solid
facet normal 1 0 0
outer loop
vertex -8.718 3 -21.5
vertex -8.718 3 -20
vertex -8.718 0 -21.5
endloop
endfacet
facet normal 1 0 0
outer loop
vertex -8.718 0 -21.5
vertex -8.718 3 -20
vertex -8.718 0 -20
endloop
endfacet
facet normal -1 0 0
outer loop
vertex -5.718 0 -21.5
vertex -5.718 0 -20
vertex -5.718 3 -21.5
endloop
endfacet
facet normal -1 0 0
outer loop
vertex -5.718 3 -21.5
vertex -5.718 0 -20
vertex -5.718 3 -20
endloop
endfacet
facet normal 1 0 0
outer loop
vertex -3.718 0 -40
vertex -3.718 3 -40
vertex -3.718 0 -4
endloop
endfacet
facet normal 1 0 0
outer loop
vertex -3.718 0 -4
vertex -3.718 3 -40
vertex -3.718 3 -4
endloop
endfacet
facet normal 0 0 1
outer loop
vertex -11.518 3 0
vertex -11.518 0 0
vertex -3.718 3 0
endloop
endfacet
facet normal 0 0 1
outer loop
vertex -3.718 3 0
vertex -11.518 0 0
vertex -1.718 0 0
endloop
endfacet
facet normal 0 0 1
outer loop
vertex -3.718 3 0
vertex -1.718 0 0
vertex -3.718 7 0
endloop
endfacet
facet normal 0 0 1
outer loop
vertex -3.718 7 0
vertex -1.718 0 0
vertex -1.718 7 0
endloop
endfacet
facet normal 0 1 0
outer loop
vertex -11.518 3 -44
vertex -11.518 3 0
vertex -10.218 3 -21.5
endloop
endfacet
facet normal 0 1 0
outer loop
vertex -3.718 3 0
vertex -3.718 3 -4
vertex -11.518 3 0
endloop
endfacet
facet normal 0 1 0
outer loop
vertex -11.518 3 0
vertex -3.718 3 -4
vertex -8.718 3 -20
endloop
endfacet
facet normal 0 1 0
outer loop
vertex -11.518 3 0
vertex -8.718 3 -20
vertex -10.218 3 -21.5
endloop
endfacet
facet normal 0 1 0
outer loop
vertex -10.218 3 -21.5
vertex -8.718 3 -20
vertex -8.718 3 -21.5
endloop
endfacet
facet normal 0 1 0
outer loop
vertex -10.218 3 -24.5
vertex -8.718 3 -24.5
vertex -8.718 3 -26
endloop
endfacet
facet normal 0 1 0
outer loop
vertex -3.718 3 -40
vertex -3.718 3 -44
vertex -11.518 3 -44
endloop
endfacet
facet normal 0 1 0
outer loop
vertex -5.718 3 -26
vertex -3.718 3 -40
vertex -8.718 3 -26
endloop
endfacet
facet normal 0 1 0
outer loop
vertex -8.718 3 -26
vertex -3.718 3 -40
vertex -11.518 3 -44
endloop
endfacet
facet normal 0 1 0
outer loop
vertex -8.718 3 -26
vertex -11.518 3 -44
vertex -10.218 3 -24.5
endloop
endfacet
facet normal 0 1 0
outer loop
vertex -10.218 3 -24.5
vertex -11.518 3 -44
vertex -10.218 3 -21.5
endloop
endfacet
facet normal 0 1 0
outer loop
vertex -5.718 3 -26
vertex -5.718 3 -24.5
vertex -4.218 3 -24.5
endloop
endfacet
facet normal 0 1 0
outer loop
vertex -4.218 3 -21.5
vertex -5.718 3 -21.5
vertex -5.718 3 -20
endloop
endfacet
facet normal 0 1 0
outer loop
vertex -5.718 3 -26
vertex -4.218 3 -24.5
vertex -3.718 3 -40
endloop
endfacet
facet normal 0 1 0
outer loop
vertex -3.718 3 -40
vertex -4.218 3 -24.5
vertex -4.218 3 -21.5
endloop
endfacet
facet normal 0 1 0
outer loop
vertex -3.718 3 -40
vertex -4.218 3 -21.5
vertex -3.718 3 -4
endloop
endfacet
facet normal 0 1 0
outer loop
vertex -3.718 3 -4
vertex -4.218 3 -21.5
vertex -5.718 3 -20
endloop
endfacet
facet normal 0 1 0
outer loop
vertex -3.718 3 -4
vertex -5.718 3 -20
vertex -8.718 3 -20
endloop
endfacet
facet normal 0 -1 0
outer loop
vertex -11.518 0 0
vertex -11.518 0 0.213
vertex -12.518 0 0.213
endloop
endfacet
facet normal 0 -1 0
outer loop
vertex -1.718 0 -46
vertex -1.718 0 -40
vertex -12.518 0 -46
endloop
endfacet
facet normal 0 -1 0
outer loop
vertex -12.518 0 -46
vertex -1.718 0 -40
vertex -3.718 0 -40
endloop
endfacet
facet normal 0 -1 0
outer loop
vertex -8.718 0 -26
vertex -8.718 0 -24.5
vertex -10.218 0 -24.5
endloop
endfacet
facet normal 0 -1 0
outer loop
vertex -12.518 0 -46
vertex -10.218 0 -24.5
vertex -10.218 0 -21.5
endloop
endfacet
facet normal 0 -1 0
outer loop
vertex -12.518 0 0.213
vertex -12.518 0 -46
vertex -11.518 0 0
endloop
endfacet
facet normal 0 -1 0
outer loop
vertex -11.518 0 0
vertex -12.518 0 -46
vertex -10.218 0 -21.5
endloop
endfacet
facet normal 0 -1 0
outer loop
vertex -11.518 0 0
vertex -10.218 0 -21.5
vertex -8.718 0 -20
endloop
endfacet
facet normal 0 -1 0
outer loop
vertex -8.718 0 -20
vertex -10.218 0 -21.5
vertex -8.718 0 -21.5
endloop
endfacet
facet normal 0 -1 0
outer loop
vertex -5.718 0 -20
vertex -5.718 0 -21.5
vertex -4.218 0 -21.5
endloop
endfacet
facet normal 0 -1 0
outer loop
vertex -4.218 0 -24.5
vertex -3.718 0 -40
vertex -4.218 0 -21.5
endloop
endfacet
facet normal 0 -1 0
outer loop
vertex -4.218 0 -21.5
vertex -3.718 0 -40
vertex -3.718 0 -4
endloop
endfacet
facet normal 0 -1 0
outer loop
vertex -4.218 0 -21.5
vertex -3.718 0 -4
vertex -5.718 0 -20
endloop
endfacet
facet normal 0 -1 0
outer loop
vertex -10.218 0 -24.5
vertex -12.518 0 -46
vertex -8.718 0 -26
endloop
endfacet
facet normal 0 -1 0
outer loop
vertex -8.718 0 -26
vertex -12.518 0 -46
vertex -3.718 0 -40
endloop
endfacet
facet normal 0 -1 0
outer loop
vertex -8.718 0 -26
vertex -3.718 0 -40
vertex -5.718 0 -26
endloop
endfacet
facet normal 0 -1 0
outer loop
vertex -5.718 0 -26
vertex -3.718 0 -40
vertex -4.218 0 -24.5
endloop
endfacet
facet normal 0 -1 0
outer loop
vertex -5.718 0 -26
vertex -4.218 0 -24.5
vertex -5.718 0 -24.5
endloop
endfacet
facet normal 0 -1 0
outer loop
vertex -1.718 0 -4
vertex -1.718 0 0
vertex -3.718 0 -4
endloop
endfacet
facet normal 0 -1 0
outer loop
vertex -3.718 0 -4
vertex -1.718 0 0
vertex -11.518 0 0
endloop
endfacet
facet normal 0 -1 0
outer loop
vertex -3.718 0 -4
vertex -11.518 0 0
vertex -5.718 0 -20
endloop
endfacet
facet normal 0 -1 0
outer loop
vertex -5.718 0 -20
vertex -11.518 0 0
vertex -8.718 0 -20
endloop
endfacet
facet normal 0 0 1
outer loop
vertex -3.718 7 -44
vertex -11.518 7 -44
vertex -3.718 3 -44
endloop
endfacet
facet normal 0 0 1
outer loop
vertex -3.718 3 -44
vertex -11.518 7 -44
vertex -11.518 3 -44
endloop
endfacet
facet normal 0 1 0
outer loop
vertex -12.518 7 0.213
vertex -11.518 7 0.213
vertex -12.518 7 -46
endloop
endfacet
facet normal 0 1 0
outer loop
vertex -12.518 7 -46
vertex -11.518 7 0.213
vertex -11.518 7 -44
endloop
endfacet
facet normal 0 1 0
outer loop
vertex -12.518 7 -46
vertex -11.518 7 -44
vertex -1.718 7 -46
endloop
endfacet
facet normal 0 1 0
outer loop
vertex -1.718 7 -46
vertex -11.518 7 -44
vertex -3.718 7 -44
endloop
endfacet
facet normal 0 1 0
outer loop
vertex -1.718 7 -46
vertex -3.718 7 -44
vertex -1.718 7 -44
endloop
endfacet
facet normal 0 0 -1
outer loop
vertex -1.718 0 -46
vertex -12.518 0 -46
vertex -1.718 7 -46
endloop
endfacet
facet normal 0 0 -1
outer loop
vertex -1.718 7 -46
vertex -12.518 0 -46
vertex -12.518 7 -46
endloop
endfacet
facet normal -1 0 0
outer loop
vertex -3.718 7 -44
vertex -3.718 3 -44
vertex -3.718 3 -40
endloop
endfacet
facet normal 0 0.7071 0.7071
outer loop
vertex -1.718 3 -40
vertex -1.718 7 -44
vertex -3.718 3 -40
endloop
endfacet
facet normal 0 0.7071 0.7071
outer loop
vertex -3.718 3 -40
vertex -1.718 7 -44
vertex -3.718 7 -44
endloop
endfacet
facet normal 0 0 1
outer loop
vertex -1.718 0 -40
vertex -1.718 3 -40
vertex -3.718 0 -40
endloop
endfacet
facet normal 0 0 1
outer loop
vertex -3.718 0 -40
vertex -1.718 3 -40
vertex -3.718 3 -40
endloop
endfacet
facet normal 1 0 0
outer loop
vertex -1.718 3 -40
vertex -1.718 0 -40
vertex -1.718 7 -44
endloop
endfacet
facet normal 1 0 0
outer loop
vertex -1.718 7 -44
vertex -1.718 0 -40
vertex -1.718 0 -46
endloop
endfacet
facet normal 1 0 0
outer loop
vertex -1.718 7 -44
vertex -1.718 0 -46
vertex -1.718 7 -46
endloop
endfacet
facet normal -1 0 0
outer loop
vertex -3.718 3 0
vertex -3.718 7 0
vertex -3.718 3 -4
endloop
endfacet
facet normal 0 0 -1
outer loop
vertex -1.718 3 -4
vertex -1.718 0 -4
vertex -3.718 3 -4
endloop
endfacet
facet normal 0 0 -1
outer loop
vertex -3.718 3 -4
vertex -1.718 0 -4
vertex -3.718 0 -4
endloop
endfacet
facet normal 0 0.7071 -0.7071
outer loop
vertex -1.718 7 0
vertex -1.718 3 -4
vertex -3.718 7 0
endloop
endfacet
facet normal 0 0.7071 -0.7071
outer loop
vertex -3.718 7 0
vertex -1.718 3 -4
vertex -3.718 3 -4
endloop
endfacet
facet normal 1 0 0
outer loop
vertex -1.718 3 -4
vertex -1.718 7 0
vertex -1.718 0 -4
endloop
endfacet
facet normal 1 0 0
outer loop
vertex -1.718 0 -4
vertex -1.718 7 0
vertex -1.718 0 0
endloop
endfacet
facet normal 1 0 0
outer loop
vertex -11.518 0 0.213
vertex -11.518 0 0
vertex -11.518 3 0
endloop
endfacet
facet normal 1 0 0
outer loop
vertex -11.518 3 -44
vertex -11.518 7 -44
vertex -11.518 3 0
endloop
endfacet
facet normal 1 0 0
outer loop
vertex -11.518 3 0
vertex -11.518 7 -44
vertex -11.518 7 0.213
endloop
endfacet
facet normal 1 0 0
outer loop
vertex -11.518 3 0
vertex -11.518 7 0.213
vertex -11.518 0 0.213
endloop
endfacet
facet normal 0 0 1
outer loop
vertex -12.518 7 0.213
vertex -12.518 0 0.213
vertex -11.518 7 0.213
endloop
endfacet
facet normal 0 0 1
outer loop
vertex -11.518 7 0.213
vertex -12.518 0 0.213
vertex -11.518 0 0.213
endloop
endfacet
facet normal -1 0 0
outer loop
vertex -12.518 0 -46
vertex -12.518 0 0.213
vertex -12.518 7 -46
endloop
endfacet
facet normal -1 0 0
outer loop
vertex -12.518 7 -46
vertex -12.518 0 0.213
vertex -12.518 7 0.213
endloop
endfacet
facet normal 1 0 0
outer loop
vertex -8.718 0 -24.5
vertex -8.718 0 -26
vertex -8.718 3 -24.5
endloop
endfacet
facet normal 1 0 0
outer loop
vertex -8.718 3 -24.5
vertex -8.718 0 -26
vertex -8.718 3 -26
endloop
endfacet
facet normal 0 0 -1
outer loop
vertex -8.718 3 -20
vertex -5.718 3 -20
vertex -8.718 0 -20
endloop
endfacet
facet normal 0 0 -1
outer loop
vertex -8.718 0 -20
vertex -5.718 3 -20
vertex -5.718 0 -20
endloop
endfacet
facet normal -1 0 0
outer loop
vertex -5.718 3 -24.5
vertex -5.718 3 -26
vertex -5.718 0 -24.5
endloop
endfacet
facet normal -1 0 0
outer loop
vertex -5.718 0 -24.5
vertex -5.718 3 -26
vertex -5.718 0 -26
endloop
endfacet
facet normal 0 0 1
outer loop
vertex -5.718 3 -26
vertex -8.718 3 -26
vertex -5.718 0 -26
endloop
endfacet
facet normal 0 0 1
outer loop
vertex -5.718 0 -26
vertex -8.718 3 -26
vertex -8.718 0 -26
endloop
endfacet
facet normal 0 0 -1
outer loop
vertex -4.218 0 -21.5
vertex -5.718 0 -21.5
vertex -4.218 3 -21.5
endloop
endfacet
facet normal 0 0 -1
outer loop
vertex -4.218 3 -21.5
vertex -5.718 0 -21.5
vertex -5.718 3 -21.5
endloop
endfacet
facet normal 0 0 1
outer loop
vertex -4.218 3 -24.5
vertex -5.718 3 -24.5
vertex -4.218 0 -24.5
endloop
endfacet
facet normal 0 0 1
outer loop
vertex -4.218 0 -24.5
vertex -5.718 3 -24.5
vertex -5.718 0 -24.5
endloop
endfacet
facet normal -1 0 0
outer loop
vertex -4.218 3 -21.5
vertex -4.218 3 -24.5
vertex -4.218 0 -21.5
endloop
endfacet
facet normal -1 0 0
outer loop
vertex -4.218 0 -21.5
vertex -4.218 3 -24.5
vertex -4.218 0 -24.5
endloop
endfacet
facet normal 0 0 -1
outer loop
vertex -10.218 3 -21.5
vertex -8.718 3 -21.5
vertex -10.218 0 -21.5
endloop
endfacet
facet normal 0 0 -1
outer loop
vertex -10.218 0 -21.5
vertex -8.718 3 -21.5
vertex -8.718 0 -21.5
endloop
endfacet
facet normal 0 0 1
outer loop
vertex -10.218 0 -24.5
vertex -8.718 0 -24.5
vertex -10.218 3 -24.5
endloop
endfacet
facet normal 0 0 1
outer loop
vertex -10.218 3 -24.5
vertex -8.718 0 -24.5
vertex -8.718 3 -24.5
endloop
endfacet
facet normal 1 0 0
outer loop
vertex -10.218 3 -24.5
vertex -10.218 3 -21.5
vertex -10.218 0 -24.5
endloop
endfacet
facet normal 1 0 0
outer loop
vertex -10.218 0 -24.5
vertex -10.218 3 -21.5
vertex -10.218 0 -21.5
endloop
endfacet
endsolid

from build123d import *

# Parameters (mm, degrees)
SKETCH_1_W          = 7.8
SKETCH_1_H          = 44
EXTRUDE_1_DEPTH     = 3
SKETCH_2_W          = 7.8
SKETCH_2_H          = 7
EXTRUDE_2_DEPTH     = 2
EXTRUDE_3_DEPTH     = 2
EXTRUDE_4_DEPTH     = 2
SKETCH_6_W          = 46.213242819
SKETCH_6_H          = 7
EXTRUDE_5_DEPTH     = 1
SKETCH_7_W          = 3
SKETCH_7_H          = 6
CUT_EXTRUDE_1_DEPTH = 3
SKETCH_8_W          = 6
SKETCH_8_H          = 3
CUT_EXTRUDE_2_DEPTH = 3


with BuildPart() as part:
    # 草图1 → 凸台-拉伸1 (new body)
    with BuildSketch(Plane(origin=(0, 0, 0), x_dir=(1, 0, 0), z_dir=(0, 1, 0))):
        with Locations((-7.618235554, 22)):
            Rectangle(SKETCH_1_W, SKETCH_1_H)
    extrude(amount=EXTRUDE_1_DEPTH)

    # 草图2 → 凸台-拉伸2 (add)
    with BuildSketch(Plane(origin=(0, 0, -44), x_dir=(-1, 0, 0), z_dir=(0, 0, -1))):
        with Locations((7.618235554, 3.5)):
            Rectangle(SKETCH_2_W, SKETCH_2_H)
    extrude(amount=EXTRUDE_2_DEPTH)

    # 草图4 → 凸台-拉伸3 (add)
    with BuildSketch(Plane(origin=(-3.718235554, 0, 0), x_dir=(0, 0, -1), z_dir=(1, 0, 0))):
        Polygon((46, 7), (44, 7), (40, 3), (40, 0), (46, 0), align=None)
    extrude(amount=EXTRUDE_3_DEPTH)

    # 草图5 → 凸台-拉伸4 (add)
    with BuildSketch(Plane(origin=(-3.718235554, 0, 0), x_dir=(0, 0, -1), z_dir=(1, 0, 0))):
        Polygon((0, 0), (0, 7), (4, 3), (4, 0), align=None)
    extrude(amount=EXTRUDE_4_DEPTH)

    # 草图6 → 凸台-拉伸5 (add)
    with BuildSketch(Plane.ZY.offset(11.518235554)):
        with Locations((-22.89337859, 3.5)):
            Rectangle(SKETCH_6_W, SKETCH_6_H)
    extrude(amount=EXTRUDE_5_DEPTH)

    # 草图7 → 切除-拉伸1 (cut)
    with BuildSketch(Plane.XZ):
        with Locations((-7.218235554, -23)):
            Rectangle(SKETCH_7_W, SKETCH_7_H)
    extrude(amount=-CUT_EXTRUDE_1_DEPTH, mode=Mode.SUBTRACT)

    # 草图8 → 切除-拉伸2 (cut)
    with BuildSketch(Plane.XZ):
        with Locations((-7.218235554, -23)):
            Rectangle(SKETCH_8_W, SKETCH_8_H)
    extrude(amount=-CUT_EXTRUDE_2_DEPTH, mode=Mode.SUBTRACT)


solid = part.part
